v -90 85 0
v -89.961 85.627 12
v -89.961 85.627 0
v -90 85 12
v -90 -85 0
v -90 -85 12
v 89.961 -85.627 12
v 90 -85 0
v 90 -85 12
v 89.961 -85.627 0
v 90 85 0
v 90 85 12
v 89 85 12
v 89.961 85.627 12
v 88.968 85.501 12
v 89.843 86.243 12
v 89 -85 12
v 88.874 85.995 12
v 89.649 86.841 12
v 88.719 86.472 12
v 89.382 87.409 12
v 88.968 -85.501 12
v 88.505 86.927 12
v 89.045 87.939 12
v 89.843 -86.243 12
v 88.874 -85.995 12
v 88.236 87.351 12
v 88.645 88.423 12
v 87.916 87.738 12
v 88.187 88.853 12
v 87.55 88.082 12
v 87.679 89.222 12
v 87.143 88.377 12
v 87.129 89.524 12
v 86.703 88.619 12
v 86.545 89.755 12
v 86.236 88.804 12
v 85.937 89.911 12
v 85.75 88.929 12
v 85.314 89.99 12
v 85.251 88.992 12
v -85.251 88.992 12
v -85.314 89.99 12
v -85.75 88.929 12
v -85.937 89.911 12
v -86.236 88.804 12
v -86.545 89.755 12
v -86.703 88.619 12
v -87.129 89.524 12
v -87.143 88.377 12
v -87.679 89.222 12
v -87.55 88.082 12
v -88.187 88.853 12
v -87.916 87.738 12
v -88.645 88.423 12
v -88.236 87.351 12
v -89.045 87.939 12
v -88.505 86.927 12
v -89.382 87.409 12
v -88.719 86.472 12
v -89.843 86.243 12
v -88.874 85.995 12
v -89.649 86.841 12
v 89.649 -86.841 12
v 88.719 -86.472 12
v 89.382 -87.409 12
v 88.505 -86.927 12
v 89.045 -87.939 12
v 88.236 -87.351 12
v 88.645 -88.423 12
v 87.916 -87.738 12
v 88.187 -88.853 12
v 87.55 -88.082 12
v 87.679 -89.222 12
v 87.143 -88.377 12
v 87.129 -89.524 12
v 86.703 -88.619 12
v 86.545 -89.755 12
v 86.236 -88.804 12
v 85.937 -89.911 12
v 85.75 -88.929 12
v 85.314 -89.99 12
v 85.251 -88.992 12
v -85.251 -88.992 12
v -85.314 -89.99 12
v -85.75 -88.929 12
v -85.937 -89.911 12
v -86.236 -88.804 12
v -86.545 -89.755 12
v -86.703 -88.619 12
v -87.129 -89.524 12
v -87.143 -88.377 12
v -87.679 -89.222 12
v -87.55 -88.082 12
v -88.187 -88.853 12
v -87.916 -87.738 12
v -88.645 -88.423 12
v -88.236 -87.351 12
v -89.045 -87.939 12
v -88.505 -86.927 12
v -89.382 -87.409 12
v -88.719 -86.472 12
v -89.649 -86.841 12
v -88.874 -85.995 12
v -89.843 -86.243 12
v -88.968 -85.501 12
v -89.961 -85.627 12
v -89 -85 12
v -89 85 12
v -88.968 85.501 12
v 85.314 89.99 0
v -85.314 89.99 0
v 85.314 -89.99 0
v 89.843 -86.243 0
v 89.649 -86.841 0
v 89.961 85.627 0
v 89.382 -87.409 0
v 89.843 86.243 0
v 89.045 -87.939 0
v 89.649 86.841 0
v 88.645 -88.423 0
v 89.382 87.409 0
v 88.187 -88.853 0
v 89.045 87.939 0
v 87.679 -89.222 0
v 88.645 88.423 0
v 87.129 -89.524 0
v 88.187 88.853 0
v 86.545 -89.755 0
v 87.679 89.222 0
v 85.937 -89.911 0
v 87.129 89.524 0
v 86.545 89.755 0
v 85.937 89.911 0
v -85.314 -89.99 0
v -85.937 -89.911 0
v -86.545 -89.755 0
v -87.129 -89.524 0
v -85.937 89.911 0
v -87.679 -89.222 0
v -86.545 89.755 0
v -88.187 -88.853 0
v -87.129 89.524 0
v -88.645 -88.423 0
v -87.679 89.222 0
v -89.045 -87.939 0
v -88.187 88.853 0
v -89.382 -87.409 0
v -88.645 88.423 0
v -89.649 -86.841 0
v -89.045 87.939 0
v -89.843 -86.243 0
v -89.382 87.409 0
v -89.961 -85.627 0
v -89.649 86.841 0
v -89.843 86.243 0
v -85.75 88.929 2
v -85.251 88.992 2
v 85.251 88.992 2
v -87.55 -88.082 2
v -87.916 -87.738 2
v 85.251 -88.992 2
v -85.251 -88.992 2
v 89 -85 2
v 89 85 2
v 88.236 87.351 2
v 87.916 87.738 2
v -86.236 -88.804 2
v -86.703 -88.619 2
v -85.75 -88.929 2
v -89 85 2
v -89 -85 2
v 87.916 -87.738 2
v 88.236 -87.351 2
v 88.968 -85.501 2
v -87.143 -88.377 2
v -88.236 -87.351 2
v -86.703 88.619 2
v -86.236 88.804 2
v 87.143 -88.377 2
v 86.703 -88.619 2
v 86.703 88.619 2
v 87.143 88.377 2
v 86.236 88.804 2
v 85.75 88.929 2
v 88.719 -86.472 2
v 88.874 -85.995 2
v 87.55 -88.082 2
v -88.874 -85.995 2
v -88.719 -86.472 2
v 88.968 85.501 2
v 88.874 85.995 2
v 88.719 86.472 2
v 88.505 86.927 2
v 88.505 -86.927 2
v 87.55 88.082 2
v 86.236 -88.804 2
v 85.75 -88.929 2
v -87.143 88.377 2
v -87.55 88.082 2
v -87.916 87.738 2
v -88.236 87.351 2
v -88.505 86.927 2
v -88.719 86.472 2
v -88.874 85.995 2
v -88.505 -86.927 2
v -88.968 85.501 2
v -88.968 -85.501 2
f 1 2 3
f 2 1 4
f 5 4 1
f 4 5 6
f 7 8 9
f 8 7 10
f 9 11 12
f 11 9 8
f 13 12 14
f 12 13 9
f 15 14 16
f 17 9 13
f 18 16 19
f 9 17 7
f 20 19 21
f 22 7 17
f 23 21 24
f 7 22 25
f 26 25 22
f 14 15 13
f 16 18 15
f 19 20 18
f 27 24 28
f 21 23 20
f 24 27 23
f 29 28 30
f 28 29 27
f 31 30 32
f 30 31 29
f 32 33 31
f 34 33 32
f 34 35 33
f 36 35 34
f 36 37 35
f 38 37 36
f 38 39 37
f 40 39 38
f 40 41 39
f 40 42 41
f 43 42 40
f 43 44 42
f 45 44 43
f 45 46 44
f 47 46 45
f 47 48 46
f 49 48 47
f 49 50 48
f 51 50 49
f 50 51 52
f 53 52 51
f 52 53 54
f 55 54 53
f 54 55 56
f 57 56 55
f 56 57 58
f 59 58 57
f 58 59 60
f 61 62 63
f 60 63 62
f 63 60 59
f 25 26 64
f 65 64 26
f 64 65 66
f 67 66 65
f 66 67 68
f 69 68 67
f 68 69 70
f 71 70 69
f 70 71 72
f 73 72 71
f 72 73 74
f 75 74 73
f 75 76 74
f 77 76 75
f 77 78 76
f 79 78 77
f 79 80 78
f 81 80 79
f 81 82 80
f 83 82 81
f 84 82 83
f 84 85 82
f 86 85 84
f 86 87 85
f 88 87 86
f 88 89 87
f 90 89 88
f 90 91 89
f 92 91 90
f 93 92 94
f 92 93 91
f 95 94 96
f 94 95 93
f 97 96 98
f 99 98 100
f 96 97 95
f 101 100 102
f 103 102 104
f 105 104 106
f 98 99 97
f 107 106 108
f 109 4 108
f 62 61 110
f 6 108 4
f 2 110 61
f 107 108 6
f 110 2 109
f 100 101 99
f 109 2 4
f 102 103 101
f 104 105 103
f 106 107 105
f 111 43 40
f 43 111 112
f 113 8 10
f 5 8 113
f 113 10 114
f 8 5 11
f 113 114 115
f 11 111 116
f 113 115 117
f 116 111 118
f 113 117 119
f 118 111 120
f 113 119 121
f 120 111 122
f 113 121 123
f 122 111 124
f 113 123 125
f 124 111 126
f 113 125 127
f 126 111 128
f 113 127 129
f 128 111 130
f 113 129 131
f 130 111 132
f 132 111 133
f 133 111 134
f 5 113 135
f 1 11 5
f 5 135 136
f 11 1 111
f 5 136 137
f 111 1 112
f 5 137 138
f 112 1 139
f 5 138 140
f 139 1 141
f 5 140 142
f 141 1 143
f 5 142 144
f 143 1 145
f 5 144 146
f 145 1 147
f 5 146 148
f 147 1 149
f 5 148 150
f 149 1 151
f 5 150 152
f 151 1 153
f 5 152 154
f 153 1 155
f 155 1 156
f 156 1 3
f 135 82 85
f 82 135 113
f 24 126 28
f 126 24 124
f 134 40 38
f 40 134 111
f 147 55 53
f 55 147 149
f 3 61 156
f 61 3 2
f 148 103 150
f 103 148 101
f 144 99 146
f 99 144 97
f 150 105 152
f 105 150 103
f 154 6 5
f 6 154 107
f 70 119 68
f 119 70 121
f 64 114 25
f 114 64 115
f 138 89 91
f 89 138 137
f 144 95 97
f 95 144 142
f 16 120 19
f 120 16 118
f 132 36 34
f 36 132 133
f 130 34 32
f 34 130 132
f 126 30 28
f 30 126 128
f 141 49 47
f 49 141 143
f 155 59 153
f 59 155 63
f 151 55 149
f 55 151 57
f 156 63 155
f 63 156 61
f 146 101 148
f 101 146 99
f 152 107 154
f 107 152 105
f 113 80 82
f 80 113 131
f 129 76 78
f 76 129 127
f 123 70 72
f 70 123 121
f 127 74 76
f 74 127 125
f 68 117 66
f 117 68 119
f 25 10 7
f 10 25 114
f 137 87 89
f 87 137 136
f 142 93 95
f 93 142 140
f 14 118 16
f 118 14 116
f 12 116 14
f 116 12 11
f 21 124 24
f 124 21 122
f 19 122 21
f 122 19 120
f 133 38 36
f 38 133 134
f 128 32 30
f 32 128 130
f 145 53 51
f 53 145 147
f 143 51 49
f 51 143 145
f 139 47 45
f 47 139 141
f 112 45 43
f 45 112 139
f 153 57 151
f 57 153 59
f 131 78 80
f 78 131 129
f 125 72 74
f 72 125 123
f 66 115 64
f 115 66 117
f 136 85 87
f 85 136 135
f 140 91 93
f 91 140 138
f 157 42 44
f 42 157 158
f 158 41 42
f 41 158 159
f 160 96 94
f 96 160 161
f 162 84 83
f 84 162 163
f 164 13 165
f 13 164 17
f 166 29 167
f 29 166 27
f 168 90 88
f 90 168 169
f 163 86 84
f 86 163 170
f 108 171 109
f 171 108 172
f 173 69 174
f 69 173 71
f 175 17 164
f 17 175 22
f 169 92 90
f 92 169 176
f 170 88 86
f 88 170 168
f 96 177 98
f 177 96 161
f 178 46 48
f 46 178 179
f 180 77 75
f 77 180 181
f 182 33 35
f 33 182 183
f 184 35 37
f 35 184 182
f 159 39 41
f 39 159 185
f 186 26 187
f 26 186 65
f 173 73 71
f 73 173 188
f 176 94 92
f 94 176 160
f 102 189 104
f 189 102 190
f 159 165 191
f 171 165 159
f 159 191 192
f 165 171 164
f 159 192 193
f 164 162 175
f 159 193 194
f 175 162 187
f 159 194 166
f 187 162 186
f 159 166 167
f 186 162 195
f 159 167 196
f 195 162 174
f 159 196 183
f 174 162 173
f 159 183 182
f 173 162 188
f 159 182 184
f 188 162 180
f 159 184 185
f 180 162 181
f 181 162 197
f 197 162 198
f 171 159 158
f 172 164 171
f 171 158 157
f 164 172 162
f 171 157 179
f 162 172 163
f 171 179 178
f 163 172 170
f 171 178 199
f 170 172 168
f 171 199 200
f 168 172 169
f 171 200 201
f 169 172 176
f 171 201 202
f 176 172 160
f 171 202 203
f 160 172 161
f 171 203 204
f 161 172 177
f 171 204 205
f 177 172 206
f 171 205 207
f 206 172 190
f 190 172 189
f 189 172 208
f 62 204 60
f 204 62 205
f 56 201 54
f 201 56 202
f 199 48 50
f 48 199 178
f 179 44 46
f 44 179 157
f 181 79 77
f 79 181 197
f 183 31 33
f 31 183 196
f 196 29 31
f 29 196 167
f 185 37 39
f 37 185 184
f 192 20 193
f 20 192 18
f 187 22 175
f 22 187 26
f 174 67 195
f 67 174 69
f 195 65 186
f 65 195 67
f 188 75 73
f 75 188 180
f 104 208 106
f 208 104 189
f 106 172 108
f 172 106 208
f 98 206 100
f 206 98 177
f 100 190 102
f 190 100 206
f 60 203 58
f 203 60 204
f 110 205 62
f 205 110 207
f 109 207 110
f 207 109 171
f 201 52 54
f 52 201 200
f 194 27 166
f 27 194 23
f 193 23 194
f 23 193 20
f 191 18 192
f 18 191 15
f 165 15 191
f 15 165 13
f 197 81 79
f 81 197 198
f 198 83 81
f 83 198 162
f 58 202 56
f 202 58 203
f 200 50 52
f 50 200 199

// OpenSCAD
$fn = 50;


difference() {
	union() {
		hull() {
			translate(v = [-85.0000000000, 85.0000000000, 0]) {
				cylinder(h = 12, r = 5);
			}
			translate(v = [85.0000000000, 85.0000000000, 0]) {
				cylinder(h = 12, r = 5);
			}
			translate(v = [-85.0000000000, -85.0000000000, 0]) {
				cylinder(h = 12, r = 5);
			}
			translate(v = [85.0000000000, -85.0000000000, 0]) {
				cylinder(h = 12, r = 5);
			}
		}
	}
	union() {
		translate(v = [0, 0, 2]) {
			hull() {
				translate(v = [-85.0000000000, 85.0000000000, 0]) {
					cylinder(h = 10, r = 4);
				}
				translate(v = [85.0000000000, 85.0000000000, 0]) {
					cylinder(h = 10, r = 4);
				}
				translate(v = [-85.0000000000, -85.0000000000, 0]) {
					cylinder(h = 10, r = 4);
				}
				translate(v = [85.0000000000, -85.0000000000, 0]) {
					cylinder(h = 10, r = 4);
				}
			}
		}
	}
}
